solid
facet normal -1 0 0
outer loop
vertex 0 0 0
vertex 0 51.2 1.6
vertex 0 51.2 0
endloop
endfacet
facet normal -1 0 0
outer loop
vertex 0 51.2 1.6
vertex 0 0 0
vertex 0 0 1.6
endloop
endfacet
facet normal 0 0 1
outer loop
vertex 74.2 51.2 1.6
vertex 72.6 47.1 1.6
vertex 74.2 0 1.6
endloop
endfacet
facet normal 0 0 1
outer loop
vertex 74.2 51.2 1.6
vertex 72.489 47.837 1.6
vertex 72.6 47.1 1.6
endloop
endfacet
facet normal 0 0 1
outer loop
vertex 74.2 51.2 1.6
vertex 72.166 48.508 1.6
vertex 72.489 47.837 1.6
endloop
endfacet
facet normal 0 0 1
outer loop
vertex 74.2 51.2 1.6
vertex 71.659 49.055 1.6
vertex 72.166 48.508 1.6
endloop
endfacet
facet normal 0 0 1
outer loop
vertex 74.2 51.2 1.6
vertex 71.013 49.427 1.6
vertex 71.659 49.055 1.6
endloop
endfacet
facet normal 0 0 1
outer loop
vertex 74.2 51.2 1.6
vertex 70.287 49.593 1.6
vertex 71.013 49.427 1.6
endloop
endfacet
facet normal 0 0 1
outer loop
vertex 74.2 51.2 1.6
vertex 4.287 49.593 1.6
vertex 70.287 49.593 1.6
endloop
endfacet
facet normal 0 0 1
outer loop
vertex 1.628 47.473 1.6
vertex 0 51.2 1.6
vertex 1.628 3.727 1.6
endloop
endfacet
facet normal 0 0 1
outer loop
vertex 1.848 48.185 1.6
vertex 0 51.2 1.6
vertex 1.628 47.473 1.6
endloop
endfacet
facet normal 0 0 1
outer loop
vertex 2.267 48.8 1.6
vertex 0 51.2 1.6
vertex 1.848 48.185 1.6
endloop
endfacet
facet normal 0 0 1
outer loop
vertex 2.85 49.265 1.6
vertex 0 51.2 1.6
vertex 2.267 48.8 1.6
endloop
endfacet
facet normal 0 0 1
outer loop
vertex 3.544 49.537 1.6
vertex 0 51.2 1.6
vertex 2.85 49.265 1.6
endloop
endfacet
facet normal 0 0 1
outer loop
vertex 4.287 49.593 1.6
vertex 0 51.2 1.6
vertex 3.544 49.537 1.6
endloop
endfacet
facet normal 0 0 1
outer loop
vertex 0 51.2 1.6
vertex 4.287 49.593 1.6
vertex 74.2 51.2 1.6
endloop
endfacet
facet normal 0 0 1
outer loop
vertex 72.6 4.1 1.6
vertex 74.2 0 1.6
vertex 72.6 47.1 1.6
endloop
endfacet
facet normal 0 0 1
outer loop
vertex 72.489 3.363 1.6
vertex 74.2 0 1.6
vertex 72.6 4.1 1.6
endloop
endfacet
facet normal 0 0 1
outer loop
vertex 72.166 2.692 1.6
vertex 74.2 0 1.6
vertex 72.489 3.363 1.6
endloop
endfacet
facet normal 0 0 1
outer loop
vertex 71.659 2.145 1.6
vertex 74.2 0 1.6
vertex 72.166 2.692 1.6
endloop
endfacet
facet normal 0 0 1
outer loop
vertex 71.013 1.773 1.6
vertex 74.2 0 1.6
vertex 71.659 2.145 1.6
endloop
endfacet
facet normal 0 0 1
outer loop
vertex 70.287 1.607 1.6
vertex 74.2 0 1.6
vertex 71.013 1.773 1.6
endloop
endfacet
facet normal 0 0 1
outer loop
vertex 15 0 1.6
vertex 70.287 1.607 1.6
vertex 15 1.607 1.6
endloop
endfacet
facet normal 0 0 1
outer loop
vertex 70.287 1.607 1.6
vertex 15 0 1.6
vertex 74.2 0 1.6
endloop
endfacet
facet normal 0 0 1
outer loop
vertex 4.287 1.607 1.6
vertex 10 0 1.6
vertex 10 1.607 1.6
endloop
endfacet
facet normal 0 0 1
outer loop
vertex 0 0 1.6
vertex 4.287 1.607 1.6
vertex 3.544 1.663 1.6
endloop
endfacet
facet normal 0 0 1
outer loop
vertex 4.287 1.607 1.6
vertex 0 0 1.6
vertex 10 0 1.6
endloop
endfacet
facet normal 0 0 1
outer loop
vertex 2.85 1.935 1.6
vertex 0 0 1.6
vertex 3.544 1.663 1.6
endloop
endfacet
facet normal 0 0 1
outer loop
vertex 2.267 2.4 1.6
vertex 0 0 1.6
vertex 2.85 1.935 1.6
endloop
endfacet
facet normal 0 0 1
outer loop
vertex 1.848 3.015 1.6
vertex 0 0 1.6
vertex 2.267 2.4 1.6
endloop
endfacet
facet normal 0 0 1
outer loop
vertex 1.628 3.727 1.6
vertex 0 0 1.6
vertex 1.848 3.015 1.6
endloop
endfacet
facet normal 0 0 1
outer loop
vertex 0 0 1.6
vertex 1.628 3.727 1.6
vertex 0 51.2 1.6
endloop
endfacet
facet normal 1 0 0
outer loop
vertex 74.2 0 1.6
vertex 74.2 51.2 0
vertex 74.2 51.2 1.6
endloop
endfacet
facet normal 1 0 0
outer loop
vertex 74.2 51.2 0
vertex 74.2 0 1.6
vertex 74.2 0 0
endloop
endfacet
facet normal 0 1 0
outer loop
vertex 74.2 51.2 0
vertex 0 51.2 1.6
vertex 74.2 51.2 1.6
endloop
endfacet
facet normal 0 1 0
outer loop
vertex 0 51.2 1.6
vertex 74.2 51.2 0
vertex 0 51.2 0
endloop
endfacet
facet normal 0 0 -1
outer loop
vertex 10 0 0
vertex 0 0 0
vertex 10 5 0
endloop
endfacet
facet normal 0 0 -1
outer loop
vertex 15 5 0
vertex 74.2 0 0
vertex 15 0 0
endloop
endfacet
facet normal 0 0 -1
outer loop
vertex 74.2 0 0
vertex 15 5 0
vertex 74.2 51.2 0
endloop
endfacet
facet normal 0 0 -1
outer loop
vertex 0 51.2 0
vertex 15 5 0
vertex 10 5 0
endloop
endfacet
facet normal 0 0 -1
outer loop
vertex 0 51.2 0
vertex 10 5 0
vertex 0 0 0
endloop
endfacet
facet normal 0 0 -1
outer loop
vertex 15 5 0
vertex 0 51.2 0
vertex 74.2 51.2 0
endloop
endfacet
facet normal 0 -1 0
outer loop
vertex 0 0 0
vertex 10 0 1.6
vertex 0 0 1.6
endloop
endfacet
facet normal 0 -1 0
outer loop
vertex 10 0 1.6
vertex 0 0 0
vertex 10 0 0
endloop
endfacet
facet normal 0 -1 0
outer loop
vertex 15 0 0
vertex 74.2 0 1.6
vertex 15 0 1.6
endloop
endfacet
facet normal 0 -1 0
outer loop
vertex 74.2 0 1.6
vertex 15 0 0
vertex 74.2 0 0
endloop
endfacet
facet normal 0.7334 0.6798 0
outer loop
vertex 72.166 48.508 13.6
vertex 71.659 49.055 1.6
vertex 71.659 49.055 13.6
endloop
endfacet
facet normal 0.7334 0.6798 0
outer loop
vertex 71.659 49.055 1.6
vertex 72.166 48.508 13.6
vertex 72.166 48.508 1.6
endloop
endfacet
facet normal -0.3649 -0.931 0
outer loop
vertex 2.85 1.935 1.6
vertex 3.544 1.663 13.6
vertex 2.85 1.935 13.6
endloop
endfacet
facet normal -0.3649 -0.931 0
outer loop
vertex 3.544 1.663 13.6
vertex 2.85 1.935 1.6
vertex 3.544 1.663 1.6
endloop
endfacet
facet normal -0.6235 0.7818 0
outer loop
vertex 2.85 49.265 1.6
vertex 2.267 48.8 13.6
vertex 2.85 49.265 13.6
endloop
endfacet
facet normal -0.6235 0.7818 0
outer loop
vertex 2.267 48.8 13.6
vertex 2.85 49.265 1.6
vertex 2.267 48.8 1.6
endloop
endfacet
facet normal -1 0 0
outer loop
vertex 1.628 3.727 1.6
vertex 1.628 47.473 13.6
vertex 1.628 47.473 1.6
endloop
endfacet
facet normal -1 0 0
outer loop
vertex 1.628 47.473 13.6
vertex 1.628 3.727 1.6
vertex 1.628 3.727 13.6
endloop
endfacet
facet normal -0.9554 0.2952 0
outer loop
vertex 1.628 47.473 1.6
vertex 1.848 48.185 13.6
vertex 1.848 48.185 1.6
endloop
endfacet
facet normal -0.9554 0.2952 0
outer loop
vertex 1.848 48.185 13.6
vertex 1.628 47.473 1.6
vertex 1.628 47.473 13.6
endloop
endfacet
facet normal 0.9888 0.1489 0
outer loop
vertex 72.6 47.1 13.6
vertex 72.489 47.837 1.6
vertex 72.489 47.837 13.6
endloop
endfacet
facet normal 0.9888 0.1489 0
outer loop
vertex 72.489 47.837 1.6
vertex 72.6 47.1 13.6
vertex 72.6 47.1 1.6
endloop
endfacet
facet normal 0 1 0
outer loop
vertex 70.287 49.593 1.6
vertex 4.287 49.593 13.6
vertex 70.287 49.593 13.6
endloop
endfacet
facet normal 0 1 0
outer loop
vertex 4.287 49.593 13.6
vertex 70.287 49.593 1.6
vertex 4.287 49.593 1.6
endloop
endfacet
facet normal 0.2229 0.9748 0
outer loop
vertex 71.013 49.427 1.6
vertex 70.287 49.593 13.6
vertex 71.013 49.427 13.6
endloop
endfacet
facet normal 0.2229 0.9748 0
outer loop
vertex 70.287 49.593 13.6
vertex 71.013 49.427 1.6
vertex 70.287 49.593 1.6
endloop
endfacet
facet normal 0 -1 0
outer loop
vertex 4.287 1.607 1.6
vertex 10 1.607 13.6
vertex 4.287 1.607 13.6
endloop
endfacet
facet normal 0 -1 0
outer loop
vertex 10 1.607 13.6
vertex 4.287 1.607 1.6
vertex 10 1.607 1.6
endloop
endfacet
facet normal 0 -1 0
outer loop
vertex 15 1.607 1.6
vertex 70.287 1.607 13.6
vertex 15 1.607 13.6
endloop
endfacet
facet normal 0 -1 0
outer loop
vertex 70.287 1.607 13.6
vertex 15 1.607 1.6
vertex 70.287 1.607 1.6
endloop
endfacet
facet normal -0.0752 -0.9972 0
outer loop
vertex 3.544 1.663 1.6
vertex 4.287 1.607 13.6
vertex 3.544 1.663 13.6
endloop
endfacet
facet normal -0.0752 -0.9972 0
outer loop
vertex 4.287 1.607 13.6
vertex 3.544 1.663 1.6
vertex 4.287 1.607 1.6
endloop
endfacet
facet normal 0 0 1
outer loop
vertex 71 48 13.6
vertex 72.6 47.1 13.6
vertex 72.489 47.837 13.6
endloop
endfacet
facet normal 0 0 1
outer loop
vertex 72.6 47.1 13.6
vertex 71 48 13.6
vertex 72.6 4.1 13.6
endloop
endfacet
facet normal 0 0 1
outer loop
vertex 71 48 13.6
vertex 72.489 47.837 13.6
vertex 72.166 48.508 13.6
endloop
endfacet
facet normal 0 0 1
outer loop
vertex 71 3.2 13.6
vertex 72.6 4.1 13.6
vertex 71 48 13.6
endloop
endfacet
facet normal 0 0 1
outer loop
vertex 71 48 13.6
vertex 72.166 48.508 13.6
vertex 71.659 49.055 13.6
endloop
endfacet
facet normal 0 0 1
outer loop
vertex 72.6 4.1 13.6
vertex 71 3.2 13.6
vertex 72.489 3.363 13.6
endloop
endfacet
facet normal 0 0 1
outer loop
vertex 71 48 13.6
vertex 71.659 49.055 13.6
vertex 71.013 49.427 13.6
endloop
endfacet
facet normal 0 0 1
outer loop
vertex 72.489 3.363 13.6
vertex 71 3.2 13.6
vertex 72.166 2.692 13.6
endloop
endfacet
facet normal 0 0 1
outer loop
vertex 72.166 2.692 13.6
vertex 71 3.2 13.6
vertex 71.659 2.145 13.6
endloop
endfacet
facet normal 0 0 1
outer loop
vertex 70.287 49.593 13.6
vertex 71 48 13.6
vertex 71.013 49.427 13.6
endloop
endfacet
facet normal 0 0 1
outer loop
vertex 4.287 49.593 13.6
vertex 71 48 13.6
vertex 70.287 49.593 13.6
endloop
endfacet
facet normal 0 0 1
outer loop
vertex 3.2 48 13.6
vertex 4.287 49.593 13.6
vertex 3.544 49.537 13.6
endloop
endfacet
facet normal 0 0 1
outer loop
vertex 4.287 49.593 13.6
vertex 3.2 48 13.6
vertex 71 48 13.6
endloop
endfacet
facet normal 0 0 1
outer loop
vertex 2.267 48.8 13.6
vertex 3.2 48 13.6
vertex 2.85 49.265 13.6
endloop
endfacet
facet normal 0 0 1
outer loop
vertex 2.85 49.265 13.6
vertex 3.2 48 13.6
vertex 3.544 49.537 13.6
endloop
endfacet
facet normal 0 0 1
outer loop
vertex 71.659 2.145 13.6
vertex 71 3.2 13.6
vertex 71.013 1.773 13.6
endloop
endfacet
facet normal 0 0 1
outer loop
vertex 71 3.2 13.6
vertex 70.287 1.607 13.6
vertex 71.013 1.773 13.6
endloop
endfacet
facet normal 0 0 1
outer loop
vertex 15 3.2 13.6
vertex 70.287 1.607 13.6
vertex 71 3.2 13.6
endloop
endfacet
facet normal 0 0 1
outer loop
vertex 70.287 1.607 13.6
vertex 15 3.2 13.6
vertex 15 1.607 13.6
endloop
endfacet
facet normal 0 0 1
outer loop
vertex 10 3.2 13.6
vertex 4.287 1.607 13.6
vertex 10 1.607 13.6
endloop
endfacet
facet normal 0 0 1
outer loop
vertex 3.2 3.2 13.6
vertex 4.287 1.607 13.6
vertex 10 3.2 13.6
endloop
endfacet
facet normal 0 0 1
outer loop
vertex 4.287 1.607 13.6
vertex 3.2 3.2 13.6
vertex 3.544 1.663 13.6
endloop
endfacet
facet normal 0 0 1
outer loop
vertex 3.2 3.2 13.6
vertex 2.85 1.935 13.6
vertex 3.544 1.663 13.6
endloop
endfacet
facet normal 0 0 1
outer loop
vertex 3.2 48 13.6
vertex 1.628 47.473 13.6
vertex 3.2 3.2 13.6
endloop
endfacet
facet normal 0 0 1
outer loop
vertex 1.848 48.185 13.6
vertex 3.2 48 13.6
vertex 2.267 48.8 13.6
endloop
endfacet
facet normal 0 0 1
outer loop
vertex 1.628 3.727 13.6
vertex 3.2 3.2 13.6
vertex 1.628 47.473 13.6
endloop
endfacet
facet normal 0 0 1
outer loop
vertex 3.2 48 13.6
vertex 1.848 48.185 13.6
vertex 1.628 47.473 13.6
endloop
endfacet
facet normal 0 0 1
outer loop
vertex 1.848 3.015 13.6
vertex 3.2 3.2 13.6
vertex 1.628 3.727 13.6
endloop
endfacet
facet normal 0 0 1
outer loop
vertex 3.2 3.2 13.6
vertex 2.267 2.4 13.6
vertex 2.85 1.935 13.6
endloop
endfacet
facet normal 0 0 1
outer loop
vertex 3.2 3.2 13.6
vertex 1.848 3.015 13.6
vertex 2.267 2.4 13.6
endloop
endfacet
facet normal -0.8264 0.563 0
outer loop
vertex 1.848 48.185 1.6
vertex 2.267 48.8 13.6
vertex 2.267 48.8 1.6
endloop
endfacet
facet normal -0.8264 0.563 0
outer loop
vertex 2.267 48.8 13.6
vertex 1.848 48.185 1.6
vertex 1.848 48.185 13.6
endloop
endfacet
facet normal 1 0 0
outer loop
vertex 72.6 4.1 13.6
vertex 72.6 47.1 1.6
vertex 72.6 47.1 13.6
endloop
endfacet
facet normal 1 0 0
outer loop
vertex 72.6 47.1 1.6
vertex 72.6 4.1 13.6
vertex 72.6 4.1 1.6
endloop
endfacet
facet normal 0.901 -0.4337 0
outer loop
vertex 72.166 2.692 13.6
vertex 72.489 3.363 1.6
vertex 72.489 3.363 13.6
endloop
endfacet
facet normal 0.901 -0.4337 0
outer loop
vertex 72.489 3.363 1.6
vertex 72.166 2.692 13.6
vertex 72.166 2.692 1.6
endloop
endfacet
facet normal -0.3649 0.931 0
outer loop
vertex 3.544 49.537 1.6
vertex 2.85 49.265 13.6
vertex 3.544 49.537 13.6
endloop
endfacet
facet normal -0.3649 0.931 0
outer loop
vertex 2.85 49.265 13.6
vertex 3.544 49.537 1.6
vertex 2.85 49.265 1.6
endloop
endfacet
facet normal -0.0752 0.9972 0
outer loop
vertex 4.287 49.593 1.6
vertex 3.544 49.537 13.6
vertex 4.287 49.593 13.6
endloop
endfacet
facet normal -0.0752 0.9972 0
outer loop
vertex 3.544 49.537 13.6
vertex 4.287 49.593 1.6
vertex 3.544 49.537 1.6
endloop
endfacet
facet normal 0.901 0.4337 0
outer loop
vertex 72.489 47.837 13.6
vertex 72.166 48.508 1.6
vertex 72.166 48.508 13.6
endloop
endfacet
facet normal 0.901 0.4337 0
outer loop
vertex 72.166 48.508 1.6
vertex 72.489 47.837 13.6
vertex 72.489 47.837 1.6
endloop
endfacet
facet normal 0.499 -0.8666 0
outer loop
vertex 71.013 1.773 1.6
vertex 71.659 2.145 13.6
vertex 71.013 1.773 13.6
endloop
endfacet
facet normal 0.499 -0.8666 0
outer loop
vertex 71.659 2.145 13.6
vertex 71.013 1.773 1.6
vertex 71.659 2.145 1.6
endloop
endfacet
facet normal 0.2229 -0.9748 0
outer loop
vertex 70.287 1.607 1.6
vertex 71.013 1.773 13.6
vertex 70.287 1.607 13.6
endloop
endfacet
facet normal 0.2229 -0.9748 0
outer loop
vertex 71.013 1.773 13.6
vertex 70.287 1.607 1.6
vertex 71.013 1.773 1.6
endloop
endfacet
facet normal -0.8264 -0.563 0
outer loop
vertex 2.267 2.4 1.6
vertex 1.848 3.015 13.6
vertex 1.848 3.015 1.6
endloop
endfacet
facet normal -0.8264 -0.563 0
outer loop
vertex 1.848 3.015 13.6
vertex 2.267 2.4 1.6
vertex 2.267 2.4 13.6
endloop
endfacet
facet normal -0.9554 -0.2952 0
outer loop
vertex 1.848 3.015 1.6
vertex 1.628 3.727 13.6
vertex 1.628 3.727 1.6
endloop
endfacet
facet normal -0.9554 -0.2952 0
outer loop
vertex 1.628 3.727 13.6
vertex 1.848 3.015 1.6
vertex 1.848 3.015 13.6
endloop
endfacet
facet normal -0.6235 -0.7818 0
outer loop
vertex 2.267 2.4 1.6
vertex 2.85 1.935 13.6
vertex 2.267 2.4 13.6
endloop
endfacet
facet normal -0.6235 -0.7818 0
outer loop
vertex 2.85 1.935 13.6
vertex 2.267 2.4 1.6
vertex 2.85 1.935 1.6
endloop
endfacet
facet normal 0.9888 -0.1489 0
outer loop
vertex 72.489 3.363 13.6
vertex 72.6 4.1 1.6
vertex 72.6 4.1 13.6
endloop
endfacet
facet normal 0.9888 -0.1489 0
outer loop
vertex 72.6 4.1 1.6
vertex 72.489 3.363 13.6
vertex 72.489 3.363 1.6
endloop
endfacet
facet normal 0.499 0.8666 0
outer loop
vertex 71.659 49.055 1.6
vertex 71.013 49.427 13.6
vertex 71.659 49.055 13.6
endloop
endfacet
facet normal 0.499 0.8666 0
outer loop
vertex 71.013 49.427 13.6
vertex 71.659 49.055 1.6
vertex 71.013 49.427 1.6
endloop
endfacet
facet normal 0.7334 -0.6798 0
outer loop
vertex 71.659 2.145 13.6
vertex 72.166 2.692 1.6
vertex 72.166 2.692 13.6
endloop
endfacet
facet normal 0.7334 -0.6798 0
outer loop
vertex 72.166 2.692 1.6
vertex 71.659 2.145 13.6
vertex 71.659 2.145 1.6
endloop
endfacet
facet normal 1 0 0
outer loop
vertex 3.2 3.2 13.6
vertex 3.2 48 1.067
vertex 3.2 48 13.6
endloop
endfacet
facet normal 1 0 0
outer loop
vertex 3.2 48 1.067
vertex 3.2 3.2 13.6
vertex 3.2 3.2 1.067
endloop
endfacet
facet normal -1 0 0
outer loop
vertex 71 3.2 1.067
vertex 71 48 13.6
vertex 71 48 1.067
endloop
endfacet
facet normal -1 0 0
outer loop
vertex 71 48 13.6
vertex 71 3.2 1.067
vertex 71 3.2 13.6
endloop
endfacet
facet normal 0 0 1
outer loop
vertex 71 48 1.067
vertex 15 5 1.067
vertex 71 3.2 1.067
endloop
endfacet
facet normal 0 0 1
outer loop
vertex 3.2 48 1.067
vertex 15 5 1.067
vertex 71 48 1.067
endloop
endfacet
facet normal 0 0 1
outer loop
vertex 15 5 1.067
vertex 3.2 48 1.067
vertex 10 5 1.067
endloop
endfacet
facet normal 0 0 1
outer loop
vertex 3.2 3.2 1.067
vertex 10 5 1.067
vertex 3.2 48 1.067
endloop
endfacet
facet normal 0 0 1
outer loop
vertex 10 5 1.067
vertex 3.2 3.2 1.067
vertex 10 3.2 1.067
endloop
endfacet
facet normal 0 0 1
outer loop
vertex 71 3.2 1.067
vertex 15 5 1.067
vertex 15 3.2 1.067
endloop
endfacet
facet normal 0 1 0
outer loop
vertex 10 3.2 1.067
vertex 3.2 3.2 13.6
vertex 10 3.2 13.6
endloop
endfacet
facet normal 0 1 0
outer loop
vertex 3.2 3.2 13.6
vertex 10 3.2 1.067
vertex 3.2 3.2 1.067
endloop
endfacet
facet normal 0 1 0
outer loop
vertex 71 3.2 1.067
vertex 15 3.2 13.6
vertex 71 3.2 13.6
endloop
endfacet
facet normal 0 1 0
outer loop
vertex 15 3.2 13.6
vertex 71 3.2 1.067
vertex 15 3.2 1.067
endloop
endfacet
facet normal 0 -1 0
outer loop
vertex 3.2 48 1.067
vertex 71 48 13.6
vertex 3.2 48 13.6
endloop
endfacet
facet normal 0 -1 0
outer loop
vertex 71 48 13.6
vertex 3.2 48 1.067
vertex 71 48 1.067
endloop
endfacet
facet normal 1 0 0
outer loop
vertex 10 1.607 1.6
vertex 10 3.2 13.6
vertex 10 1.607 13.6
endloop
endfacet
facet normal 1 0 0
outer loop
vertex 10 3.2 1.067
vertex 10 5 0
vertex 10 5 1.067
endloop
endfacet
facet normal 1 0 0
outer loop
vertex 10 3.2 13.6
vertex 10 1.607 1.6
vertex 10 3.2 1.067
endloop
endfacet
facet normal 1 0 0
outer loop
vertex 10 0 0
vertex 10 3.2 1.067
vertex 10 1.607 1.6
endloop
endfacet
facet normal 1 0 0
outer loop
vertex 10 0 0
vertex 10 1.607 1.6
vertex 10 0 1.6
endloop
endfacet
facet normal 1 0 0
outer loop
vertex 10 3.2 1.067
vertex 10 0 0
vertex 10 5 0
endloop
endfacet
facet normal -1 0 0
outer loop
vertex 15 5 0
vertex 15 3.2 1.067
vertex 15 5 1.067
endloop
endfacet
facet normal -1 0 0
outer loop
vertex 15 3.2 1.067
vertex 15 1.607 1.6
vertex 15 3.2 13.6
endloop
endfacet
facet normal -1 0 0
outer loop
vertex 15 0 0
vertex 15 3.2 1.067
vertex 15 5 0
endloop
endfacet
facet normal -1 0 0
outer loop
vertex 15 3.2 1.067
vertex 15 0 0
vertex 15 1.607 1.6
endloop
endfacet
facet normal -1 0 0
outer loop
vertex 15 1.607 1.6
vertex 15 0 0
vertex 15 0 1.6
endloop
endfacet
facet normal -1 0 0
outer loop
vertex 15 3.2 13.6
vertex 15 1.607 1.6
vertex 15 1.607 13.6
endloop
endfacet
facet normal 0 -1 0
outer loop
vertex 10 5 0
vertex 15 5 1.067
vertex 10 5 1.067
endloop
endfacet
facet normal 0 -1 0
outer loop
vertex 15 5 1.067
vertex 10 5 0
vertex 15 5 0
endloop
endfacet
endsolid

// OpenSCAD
width = 71;
length = 48;
height = 50;

w=0.4*4;


difference()
{
    union()
    {
        cube([width+2*w,length+2*w,w]);

        translate([w,w,w])
        round_cube(width, length, 12);
        //cube([width,length,6]);
    }

    translate([w,w,w])
    translate([w,w,-w/3])
    #cube([width-2*w,length-2*w,12+w]);
    translate([10,0,-w])
    #cube([5,5,16]);
}


module round_cube(width, length, height)
{
    $fn=21;
    d = 5;
    
    translate([d/2,d/2,0])
    hull()
    {
        translate([0,0,0])
        cylinder(d=d,h=height);
        translate([width-d,0,0])
        cylinder(d=d,h=height);
        translate([width-d,length-d,0])
        cylinder(d=d,h=height);
        translate([0,length-d,0])
        cylinder(d=d,h=height);
    }
    
}
